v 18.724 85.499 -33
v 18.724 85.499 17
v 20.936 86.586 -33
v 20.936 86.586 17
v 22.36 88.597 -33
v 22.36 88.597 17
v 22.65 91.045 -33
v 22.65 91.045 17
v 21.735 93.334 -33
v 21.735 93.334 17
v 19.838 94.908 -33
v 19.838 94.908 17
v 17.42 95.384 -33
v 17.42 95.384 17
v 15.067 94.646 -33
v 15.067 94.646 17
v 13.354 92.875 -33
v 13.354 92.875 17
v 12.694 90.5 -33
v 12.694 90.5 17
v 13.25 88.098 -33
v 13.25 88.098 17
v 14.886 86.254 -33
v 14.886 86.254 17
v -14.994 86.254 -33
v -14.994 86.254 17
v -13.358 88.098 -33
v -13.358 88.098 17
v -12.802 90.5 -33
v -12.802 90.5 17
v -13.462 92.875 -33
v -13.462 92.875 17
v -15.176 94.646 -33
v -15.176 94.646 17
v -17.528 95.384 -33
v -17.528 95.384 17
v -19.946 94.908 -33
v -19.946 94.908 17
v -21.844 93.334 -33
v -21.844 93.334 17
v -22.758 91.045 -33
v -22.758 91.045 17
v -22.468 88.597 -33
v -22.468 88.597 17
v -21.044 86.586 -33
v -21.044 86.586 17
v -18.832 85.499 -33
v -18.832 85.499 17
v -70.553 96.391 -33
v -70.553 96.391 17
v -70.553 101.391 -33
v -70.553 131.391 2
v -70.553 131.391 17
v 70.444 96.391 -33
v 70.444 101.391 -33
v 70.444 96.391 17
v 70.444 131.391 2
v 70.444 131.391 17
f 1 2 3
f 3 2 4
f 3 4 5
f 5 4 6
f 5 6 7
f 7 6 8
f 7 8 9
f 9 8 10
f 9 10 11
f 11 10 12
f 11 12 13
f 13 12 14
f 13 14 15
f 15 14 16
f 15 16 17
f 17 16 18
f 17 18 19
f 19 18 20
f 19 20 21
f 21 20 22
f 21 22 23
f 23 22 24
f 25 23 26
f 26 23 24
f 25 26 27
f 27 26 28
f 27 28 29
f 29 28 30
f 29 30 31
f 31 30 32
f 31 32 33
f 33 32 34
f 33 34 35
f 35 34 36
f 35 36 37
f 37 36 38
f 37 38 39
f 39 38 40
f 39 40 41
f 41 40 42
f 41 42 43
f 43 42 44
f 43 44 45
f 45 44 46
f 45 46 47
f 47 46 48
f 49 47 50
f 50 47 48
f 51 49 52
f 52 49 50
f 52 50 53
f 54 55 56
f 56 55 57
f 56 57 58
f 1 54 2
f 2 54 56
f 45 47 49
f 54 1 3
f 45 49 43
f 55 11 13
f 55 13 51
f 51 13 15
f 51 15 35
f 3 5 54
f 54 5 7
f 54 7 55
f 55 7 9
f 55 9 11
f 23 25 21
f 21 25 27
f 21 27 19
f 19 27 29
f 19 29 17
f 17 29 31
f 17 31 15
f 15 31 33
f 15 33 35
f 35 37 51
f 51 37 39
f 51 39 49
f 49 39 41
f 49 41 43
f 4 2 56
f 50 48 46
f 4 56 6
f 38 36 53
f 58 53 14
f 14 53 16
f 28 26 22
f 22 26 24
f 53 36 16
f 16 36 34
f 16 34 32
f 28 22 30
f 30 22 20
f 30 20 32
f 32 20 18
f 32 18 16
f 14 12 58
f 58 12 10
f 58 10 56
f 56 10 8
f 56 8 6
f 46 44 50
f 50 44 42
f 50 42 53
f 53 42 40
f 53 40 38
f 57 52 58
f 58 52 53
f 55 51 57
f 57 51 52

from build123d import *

# Parameters (mm, degrees)
BOSS_EXTRUDE1_DEPTH = 50
BOSS_EXTRUDE2_DEPTH = 140.997088


with BuildPart() as part:
    # Sketch2 → Boss-Extrude1 (new body)
    with BuildSketch(Plane.XY.offset(17)):
        with BuildLine():
            Line((70.444464788, 96.391350971), (18.723576719, 85.49867955))
            ThreePointArc((18.723576719, 85.49867955), (18.658589867, 95.297259441), (14.88570491, 86.253934263))
            Line((14.88570491, 86.253934263), (-14.993863644, 86.253934263))
            ThreePointArc((-14.993863644, 86.253934263), (-18.766748601, 95.297259441), (-18.831735453, 85.49867955))
            Line((-18.831735453, 85.49867955), (-70.552623522, 96.391350971))
            Line((-70.552623522, 96.391350971), (-70.552623522, 101.391350971))
            Line((-70.552623522, 101.391350971), (70.444464788, 101.391350971))
            Line((70.444464788, 101.391350971), (70.444464788, 96.391350971))
        make_face()
    extrude(amount=-BOSS_EXTRUDE1_DEPTH)

    # Sketch7 → Boss-Extrude2 (add)
    with BuildSketch(Plane.ZY.offset(70.552623522)):
        Polygon((17, 131.391350971), (2, 131.391350971), (-33, 101.391350971), (17, 101.391350971), align=None)
    extrude(amount=-BOSS_EXTRUDE2_DEPTH)


solid = part.part
